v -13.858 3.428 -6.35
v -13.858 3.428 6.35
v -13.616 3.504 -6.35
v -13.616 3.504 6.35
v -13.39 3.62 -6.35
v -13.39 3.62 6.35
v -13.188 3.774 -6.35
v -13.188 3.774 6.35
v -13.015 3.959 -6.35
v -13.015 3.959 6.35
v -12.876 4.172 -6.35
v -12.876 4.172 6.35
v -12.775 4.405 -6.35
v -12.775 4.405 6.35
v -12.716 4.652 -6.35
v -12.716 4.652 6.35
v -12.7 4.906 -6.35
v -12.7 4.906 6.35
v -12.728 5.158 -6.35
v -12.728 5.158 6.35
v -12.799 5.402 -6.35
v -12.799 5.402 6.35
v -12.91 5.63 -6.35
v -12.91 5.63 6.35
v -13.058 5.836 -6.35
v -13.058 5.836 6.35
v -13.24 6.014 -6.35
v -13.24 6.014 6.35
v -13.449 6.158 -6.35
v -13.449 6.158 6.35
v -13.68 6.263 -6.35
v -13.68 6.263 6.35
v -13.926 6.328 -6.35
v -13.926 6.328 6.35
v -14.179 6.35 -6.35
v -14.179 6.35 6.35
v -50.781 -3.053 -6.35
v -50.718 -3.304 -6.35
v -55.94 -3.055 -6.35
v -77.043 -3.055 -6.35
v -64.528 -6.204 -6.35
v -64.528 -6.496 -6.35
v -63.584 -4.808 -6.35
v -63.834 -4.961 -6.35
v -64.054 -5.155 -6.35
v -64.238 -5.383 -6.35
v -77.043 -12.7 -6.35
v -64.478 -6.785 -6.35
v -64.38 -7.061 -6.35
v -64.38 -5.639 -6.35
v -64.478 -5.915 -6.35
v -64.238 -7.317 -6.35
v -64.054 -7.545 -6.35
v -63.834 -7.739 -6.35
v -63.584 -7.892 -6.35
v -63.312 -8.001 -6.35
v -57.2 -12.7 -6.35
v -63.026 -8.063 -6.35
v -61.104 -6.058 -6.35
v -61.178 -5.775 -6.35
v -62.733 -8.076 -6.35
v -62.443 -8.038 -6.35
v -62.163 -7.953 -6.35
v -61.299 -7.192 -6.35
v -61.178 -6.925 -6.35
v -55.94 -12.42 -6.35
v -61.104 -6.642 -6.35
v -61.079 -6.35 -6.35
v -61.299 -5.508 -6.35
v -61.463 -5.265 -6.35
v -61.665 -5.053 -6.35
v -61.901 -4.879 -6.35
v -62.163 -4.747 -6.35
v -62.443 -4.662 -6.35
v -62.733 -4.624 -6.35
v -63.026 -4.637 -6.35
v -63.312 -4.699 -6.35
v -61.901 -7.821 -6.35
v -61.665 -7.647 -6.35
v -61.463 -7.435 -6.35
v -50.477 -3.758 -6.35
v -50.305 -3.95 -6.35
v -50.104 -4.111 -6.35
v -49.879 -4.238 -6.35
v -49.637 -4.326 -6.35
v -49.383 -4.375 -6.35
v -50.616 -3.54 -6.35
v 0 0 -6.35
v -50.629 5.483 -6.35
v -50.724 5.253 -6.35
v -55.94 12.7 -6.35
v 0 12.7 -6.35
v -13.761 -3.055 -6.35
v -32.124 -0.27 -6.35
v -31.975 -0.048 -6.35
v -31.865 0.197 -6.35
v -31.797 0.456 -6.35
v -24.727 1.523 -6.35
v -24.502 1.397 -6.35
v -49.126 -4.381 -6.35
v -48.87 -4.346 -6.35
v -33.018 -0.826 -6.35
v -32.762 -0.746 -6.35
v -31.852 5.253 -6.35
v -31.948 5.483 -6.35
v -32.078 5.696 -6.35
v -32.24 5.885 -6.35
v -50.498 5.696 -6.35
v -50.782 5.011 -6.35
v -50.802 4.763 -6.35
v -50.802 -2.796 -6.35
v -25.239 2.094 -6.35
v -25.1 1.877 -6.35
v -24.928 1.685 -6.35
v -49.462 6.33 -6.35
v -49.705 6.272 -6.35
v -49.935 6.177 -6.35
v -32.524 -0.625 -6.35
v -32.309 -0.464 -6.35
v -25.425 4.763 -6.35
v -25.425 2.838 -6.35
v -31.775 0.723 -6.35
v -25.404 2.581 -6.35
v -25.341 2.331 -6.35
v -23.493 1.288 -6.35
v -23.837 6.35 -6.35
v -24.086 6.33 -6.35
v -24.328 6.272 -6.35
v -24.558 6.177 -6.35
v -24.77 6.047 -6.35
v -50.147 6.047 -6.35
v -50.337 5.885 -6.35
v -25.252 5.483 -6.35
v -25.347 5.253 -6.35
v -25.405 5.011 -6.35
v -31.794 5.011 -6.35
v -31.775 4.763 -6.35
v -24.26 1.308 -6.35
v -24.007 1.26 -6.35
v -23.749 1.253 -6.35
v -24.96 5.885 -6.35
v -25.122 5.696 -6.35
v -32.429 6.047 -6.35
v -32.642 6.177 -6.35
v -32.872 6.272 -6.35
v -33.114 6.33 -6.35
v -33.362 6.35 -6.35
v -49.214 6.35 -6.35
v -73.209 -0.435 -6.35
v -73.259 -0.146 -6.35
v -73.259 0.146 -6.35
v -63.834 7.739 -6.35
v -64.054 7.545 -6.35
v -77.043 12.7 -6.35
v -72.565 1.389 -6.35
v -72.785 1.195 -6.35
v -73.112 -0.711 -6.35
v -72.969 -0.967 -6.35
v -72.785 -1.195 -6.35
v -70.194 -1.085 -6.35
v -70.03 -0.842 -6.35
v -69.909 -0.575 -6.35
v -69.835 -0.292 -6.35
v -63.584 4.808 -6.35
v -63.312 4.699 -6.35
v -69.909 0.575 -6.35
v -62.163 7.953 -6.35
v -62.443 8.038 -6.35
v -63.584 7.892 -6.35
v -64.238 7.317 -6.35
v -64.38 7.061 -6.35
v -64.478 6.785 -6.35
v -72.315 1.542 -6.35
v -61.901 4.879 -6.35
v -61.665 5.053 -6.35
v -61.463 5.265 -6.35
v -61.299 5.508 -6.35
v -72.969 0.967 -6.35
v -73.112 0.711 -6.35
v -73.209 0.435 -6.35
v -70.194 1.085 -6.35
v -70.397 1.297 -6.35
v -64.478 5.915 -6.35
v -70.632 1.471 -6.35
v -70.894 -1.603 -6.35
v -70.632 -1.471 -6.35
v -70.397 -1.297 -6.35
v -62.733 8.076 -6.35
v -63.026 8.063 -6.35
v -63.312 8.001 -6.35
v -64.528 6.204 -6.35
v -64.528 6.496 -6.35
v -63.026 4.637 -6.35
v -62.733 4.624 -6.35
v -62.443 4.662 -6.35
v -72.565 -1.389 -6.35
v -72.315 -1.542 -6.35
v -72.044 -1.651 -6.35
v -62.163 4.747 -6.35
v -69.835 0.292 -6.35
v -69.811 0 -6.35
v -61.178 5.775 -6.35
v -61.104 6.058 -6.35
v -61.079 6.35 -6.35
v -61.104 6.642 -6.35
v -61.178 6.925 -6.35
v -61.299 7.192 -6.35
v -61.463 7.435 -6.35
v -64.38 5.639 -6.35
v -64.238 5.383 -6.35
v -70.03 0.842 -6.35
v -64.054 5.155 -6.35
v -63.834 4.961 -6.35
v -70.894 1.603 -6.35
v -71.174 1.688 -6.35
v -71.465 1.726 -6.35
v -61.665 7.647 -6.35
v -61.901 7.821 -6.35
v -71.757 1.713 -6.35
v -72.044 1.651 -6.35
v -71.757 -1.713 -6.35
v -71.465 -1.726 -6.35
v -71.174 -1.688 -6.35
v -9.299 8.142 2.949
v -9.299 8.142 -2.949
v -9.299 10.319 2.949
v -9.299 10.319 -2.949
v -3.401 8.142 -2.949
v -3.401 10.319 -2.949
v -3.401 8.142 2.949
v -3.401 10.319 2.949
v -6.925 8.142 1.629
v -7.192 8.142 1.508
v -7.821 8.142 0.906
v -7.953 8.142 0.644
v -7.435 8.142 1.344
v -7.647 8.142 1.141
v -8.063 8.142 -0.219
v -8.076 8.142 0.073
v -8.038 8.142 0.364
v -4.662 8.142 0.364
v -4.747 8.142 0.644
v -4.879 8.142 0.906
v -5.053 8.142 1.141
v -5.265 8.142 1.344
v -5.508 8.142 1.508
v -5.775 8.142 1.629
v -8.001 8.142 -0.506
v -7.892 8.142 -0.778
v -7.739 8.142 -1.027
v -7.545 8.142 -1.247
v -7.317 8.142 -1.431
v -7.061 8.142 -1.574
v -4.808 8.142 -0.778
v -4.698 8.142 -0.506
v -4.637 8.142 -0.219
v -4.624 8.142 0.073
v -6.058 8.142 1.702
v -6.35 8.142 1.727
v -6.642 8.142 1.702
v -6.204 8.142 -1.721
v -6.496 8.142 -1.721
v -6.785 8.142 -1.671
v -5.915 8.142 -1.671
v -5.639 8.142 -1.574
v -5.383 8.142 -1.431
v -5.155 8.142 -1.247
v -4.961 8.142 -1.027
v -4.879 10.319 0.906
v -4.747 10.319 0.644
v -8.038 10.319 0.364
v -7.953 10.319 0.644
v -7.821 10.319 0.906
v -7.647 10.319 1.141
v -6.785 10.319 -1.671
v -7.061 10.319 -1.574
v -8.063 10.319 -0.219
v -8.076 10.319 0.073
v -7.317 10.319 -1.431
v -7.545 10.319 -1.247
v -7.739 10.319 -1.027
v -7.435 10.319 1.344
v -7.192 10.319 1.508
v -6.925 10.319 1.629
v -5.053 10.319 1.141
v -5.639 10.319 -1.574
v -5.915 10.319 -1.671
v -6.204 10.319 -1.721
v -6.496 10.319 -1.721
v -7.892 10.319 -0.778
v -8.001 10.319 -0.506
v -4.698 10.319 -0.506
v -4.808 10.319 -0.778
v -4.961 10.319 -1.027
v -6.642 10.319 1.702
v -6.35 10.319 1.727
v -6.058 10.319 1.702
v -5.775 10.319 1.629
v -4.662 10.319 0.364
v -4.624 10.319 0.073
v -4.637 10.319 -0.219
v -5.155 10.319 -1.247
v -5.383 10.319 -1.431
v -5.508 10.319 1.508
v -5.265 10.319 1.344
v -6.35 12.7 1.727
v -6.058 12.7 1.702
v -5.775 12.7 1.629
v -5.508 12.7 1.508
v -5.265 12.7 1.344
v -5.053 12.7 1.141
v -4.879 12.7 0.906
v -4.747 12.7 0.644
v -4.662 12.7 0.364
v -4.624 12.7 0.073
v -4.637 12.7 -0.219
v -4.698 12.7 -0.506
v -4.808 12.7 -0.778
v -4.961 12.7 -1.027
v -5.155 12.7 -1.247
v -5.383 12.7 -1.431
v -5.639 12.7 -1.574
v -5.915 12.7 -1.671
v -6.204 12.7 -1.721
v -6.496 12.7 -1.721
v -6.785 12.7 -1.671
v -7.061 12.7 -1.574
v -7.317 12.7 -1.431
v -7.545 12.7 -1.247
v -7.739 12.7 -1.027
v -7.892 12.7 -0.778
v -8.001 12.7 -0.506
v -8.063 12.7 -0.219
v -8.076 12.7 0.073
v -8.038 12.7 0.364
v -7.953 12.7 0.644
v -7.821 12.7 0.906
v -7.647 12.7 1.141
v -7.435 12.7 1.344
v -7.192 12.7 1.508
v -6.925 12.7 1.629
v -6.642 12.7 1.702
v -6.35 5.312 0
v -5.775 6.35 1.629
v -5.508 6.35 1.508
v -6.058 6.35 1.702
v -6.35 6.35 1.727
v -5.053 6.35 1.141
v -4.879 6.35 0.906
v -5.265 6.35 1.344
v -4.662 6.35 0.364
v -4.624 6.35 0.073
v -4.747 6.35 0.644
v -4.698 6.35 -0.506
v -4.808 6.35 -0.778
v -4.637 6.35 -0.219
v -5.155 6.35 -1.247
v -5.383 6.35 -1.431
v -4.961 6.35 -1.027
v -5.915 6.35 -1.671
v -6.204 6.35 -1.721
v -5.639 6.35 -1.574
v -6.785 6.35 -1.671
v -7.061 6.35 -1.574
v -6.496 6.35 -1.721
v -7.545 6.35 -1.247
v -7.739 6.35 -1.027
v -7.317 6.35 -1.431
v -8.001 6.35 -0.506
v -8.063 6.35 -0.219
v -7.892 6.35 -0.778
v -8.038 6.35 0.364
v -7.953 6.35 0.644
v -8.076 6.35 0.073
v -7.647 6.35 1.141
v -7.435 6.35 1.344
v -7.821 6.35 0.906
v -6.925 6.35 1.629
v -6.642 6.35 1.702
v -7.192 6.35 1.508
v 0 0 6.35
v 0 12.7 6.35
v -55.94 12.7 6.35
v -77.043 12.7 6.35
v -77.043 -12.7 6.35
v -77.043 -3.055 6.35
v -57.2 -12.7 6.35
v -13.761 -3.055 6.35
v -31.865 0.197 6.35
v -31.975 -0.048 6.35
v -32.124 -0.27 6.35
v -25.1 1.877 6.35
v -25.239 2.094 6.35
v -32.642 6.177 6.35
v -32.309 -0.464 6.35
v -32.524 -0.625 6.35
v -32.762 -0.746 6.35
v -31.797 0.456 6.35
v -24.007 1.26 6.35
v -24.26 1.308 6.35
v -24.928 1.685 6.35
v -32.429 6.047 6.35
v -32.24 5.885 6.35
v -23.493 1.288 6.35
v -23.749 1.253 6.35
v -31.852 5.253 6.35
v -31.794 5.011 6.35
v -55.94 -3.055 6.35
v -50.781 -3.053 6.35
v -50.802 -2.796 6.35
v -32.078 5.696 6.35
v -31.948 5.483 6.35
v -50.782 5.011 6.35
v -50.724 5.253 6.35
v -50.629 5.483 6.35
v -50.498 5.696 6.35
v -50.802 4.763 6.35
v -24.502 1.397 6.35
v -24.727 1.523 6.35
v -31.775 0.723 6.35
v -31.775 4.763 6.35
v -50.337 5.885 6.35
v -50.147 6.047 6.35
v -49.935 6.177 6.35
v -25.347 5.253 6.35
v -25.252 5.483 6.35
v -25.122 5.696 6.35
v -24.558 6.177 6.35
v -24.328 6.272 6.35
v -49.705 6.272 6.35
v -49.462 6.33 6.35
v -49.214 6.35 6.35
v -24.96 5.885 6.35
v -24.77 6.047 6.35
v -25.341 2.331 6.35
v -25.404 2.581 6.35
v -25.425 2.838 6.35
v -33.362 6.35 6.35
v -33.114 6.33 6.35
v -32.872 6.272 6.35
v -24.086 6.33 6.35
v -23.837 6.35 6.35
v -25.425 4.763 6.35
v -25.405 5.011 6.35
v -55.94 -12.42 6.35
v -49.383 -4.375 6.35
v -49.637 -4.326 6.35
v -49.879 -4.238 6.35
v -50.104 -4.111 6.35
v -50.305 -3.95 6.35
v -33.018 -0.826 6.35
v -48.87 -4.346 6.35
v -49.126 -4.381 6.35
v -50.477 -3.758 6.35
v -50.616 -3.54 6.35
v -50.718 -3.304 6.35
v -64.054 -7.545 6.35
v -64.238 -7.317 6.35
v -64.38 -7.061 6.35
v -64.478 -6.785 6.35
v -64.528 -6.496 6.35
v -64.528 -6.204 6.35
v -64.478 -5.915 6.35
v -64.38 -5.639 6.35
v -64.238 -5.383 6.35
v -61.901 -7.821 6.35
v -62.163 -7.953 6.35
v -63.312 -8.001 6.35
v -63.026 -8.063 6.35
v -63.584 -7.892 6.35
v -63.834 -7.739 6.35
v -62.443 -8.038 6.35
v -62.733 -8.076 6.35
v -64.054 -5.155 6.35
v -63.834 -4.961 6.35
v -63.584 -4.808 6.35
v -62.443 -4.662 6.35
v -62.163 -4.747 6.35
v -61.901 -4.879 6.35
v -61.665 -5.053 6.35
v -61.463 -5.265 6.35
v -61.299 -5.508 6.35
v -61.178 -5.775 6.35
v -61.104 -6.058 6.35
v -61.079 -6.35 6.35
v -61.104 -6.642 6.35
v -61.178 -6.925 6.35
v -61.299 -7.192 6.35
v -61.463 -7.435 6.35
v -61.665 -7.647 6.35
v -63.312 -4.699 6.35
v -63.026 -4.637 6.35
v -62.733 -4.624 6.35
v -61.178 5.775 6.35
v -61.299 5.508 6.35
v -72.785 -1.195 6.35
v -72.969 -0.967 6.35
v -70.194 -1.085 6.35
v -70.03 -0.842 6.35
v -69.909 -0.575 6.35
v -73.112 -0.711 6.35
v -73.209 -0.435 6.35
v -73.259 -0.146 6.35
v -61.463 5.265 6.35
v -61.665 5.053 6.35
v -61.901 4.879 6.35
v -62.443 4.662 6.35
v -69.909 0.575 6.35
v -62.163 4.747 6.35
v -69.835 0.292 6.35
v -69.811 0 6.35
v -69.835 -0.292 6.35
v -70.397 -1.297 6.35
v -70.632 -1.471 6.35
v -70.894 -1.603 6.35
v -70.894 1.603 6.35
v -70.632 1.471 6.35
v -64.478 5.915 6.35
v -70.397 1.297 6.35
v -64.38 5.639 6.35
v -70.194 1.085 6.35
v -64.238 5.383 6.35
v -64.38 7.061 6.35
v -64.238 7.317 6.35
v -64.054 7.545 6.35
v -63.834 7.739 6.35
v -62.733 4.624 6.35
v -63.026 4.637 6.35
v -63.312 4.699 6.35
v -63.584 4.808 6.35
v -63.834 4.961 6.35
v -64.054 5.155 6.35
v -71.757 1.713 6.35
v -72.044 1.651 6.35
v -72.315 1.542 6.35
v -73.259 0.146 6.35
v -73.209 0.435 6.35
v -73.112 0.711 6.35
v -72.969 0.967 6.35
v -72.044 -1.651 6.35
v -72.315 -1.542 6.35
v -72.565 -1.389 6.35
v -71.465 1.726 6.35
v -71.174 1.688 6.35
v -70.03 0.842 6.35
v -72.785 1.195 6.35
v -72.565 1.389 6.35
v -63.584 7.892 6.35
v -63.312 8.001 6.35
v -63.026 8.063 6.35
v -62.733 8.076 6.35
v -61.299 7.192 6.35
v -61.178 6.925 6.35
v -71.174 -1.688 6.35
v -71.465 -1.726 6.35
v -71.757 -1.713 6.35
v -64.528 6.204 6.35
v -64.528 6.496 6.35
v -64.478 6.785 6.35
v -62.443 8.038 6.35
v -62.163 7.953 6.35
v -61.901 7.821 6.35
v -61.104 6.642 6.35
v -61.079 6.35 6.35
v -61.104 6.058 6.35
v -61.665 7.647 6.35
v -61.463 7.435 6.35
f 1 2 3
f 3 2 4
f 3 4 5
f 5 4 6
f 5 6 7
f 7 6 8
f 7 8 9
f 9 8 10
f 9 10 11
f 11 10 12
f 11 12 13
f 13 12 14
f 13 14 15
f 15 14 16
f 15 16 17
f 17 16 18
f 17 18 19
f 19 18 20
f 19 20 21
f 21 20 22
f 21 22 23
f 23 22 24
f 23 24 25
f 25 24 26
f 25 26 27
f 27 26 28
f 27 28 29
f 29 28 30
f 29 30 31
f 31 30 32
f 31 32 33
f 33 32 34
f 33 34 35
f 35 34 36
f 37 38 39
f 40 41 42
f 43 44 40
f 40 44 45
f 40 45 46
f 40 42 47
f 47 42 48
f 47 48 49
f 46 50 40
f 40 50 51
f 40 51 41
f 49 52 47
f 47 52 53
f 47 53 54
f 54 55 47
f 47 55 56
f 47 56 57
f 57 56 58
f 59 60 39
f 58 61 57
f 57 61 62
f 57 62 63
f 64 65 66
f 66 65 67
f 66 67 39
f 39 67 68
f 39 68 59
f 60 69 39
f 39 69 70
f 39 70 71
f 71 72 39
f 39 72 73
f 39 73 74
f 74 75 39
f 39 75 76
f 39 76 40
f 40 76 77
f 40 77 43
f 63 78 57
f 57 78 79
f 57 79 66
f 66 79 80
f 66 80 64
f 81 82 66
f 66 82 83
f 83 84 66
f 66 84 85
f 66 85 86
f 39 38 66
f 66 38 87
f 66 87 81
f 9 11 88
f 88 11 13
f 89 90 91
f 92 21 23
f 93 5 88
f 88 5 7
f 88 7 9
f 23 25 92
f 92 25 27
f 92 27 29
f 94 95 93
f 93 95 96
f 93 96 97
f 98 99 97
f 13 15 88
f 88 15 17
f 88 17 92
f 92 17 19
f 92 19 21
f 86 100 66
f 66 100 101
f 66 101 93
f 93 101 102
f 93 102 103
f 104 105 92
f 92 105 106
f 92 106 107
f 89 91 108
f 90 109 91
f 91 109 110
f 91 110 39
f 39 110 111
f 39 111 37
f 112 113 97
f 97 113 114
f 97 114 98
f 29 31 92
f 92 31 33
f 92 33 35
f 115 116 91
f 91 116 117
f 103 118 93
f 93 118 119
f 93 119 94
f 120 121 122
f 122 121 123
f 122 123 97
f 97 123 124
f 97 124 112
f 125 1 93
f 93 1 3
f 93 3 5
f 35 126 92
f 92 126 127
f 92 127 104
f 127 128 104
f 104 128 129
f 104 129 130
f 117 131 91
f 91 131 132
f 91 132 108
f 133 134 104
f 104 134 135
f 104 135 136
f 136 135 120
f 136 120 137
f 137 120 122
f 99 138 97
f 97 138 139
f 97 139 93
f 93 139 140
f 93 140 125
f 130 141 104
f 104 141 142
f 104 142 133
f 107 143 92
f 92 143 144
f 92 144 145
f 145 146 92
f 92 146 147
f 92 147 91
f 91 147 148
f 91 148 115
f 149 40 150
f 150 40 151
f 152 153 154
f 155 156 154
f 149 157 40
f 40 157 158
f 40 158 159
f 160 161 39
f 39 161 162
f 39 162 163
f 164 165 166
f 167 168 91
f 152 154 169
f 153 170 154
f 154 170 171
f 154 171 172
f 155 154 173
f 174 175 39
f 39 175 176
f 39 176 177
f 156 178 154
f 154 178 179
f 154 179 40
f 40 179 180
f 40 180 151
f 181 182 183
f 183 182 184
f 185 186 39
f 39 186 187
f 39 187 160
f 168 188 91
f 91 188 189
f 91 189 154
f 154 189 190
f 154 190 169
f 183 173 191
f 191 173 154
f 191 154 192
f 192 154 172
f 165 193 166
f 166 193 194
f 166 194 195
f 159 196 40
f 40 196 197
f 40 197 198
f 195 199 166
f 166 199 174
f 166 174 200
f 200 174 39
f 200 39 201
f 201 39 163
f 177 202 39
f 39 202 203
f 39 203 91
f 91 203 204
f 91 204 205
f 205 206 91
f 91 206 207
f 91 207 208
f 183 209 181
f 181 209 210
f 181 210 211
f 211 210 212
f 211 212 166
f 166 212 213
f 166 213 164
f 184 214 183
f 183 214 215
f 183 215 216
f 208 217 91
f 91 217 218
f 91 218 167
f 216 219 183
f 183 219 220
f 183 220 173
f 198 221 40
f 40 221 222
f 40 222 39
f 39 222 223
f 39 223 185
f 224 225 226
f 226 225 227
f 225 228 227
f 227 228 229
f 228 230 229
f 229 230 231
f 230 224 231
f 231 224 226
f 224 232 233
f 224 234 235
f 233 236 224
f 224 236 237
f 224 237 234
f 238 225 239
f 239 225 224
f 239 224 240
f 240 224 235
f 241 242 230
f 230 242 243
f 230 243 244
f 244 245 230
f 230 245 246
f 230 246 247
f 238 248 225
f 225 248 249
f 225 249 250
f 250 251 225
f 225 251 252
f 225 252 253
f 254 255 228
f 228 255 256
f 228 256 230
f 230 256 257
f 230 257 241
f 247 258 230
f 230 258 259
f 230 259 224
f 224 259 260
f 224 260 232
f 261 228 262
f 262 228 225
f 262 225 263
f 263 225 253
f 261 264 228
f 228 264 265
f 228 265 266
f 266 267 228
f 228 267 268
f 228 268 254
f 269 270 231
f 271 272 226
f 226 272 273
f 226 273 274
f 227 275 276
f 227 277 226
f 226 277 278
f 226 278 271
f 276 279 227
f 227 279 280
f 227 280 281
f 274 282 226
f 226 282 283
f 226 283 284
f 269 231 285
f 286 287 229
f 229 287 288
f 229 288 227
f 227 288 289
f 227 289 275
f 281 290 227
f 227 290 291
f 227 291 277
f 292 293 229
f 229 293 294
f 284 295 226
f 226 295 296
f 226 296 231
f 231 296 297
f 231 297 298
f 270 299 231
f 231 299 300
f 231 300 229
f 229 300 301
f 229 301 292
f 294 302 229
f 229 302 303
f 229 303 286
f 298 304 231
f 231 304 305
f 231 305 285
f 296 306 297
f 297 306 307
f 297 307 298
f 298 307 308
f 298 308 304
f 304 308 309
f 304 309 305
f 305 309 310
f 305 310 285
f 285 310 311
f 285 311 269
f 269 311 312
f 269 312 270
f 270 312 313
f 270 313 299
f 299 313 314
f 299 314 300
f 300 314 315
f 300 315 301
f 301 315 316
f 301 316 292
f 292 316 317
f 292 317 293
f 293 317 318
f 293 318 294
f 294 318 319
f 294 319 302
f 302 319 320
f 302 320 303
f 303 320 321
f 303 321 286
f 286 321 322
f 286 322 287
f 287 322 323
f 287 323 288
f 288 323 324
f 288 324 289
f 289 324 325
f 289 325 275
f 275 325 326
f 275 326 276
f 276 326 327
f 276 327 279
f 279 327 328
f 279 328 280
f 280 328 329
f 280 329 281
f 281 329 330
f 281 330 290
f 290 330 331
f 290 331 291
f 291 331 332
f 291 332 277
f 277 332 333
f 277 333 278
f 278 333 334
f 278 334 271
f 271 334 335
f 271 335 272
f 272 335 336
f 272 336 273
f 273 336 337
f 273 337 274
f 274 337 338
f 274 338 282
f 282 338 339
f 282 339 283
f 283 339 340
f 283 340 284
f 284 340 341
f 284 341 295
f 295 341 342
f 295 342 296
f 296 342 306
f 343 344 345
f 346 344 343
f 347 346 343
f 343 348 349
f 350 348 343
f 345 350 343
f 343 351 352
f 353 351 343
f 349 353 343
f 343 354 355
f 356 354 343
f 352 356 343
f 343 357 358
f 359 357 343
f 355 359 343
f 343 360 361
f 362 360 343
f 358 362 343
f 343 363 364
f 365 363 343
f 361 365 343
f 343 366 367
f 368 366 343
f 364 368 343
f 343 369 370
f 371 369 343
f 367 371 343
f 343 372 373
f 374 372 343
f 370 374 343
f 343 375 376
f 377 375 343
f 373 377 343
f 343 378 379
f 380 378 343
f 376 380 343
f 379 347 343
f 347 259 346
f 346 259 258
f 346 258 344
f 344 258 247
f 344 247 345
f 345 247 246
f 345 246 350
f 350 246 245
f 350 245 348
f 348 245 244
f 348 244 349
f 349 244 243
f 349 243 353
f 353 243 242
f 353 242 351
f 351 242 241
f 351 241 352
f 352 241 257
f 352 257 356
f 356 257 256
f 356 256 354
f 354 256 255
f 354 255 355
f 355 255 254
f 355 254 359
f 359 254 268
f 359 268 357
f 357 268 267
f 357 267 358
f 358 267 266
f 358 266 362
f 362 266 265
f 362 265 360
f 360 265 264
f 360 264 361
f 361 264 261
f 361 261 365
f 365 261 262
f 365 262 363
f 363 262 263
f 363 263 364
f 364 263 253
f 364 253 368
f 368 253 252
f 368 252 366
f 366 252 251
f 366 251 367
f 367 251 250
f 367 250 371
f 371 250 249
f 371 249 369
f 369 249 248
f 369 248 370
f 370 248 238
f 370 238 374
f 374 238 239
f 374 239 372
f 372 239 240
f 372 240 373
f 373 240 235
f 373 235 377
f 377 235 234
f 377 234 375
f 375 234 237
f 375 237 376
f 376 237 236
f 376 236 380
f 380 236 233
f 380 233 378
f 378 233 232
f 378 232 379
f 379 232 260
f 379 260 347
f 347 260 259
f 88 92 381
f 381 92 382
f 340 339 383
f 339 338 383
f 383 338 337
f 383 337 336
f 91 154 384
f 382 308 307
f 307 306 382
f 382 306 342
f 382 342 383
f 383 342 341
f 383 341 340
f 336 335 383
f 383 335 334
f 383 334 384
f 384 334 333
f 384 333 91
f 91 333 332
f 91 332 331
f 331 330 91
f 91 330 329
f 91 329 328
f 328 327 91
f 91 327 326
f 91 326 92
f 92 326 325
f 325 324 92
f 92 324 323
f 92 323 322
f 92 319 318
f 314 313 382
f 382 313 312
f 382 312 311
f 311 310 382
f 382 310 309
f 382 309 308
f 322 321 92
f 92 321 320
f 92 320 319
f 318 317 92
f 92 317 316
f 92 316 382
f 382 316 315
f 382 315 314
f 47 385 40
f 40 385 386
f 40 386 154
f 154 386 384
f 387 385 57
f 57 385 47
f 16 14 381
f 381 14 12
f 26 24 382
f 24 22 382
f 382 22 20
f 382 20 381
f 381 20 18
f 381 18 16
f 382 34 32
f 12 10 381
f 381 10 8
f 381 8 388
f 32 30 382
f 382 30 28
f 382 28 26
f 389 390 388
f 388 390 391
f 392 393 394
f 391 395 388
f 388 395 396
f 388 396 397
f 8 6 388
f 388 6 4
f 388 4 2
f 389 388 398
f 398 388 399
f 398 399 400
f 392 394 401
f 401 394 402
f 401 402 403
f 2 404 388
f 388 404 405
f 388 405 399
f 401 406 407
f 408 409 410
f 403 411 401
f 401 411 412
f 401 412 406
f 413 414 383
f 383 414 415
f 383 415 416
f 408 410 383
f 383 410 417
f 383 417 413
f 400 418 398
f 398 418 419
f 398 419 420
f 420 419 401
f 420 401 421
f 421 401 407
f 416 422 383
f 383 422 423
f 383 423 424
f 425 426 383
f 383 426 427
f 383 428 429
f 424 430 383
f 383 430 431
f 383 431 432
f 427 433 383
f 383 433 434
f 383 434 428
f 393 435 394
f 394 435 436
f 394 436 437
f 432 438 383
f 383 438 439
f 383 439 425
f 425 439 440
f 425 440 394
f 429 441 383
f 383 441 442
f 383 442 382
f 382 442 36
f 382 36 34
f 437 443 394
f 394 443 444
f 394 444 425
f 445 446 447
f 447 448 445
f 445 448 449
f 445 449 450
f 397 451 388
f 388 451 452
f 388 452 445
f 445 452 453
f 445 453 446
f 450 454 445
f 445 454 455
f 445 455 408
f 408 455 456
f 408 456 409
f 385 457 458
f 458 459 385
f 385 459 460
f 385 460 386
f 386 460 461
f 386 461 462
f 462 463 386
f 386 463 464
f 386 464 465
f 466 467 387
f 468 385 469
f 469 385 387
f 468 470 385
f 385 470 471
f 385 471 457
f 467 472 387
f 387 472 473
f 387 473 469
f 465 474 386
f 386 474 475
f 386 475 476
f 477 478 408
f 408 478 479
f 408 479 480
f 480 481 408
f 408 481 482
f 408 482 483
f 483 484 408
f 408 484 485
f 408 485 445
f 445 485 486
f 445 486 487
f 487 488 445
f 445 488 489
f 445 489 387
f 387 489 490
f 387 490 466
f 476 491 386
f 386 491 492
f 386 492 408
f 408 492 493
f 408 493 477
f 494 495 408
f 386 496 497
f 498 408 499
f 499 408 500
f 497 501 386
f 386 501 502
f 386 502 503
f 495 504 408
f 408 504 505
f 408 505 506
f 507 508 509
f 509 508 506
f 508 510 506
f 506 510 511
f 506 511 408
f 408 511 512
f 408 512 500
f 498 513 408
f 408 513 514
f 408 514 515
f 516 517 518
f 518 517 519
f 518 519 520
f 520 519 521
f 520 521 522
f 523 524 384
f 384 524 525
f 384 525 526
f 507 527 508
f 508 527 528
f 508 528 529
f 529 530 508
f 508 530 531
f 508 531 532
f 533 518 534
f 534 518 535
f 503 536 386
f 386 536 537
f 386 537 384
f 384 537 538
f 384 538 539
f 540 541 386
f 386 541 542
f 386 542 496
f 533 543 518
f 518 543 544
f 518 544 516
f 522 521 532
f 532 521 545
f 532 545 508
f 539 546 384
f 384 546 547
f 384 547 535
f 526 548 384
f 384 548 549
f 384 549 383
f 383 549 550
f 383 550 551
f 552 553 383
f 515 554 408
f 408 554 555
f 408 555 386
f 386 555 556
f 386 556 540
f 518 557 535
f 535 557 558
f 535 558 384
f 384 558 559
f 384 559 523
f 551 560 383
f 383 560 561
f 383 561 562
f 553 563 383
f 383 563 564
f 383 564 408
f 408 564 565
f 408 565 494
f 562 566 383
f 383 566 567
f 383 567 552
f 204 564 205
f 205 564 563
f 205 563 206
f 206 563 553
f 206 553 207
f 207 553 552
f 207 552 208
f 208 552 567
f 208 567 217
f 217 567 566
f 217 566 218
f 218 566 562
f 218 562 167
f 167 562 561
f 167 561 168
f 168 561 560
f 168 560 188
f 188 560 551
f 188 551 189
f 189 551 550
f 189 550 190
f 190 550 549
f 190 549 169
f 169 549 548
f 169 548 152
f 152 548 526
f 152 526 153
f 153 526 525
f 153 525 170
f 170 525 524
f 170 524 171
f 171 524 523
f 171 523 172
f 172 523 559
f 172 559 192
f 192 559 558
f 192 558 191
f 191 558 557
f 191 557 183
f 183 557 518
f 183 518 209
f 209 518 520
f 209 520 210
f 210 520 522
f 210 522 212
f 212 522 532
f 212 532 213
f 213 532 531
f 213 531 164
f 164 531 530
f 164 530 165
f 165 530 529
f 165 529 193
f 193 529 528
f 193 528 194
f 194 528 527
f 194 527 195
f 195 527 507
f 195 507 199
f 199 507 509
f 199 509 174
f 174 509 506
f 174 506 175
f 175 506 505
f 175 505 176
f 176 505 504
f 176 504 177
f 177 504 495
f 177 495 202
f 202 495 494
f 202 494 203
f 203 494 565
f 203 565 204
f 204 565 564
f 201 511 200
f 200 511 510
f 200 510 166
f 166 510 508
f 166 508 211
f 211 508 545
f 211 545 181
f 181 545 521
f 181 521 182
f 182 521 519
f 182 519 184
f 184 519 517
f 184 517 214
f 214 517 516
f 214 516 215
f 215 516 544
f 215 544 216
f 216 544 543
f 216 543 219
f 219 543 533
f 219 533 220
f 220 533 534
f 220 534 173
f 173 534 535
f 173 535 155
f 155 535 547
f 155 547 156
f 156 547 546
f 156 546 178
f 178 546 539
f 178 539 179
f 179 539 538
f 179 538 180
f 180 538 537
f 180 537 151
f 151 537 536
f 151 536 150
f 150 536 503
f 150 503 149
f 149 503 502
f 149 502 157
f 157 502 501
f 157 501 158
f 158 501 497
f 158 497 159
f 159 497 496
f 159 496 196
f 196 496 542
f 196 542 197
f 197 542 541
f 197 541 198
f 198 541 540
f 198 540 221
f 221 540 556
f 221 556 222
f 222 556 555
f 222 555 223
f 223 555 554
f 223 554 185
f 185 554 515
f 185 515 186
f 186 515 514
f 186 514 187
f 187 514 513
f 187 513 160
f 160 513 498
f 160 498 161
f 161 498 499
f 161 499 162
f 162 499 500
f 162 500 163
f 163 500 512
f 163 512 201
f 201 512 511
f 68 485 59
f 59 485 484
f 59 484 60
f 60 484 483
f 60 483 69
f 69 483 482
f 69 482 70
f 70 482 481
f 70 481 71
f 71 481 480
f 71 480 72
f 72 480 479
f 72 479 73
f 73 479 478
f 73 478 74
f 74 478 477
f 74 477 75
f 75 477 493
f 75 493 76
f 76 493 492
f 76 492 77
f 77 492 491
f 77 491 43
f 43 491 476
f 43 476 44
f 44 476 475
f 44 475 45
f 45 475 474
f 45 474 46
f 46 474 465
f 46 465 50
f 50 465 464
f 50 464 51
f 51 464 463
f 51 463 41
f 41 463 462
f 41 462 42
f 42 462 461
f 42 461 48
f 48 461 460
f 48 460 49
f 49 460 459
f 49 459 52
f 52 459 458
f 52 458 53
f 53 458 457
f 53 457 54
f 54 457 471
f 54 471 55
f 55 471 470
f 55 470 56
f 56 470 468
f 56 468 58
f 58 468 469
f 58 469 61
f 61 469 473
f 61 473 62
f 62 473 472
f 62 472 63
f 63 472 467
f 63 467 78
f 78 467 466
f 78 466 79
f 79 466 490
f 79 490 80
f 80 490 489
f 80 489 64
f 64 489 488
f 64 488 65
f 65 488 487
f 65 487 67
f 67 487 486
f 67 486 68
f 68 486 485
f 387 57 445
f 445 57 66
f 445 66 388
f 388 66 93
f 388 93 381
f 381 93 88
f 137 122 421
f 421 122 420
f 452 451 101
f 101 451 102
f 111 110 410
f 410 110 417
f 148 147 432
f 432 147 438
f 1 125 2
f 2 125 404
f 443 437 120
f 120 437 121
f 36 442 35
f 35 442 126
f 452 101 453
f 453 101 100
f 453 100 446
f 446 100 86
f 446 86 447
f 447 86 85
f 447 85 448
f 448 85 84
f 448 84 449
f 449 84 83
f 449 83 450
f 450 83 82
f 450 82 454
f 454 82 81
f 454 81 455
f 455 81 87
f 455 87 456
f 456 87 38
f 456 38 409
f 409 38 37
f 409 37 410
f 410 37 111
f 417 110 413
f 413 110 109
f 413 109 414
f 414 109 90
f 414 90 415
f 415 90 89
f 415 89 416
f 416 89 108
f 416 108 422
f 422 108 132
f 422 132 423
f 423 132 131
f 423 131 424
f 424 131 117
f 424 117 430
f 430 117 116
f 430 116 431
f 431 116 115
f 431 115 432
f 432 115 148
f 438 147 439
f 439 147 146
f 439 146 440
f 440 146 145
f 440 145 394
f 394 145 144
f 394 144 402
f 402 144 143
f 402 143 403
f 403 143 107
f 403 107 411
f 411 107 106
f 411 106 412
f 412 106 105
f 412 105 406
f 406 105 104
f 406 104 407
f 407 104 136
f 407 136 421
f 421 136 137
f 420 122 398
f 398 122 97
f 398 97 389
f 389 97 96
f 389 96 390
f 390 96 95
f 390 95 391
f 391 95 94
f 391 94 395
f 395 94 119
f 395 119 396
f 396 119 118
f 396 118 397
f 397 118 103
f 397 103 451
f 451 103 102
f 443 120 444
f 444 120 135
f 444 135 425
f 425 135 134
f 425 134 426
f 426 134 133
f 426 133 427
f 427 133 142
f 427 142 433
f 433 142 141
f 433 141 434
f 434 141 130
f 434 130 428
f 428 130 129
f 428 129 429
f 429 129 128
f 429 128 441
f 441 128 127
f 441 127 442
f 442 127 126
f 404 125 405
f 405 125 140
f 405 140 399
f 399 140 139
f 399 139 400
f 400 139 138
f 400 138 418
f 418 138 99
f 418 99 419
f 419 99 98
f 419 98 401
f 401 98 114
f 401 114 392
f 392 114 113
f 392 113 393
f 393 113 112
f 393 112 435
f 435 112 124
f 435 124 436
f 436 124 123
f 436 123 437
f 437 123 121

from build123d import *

# Parameters (mm, degrees)
SKETCH1_W                 = 77.04328
SKETCH1_H                 = 25.4
BOSS_EXTRUDE1_DEPTH       = 6.35
CUT_EXTRUDE1_START        = -2.38125
SKETCH2_W                 = 5.8975
SKETCH2_H                 = 5.8975
CUT_EXTRUDE1_DEPTH        = 2.1764
F_4_CLEARANCE_HOLE1_D     = 3.4544
F_4_CLEARANCE_HOLE1_DEPTH = 6.35
F_4_CLEARANCE_HOLE1_TIP   = 1.037806461
F_4_CLEARANCE_HOLE2_D     = 3.4544
CUT_EXTRUDE2_DEPTH        = 80.109082874
CUT_EXTRUDE3_DEPTH        = 80.109082874
FILLET1_R                 = 1.5875
FILLET2_R                 = 1.478727


with BuildPart() as part:
    # Sketch1 → Boss-Extrude1 (new, symmetric)
    with BuildSketch(Plane.XY):
        with Locations((-38.52164, 0)):
            Rectangle(SKETCH1_W, SKETCH1_H)
    extrude(amount=BOSS_EXTRUDE1_DEPTH, both=True)

    # Sketch2 → Cut-Extrude1 (cut)
    with BuildSketch(Plane(origin=(0, 12.7, 0), x_dir=(1, 0, 0), z_dir=(0, 1, 0)).offset(CUT_EXTRUDE1_START)):
        with Locations((-6.350000199, 1.99e-07)):
            Rectangle(SKETCH2_W, SKETCH2_H)
    extrude(amount=-CUT_EXTRUDE1_DEPTH, mode=Mode.SUBTRACT)

    # #4 Clearance Hole1
    with Locations(Plane(origin=(0, 12.7, 0), x_dir=(1, 0, 0), z_dir=(0, 1, 0))):
        with Locations((-6.350000199, 1.99e-07)):
            Hole(F_4_CLEARANCE_HOLE1_D / 2, depth=F_4_CLEARANCE_HOLE1_DEPTH)
            with Locations((0, 0, -(F_4_CLEARANCE_HOLE1_DEPTH + F_4_CLEARANCE_HOLE1_TIP / 2))):  # 118° drill point
                Cone(0, F_4_CLEARANCE_HOLE1_D / 2, F_4_CLEARANCE_HOLE1_TIP, mode=Mode.SUBTRACT)

    # #4 Clearance Hole2 (through all)
    with Locations(Plane.XY.offset(6.35)):
        with Locations((-62.80658, -6.35), (-71.53783, 0), (-62.80658, 6.35)):
            Hole(F_4_CLEARANCE_HOLE2_D / 2)

    # Sketch8 → Cut-Extrude2 (cut, through all)
    with BuildSketch(Plane(origin=(0, 0, -6.35), x_dir=(-1, 0, 0), z_dir=(0, 0, -1))):
        Polygon((0, 0), (0, -12.7), (57.19953, -12.7), align=None)
    extrude(amount=-CUT_EXTRUDE2_DEPTH, mode=Mode.SUBTRACT)

    # Sketch9 → Cut-Extrude3 (cut, through all)
    with BuildSketch(Plane.XY.offset(6.35)):
        Polygon((-12.7, 3.684857438), (-25.424765, 0.859580456), (-25.424765, 6.35), (-12.7, 6.35), align=None)
        Polygon((-31.774765, -0.550308751), (-50.801588921, -4.774830592), (-50.801588921, 6.35), (-31.774765, 6.35), align=None)
    extrude(amount=-CUT_EXTRUDE3_DEPTH, mode=Mode.SUBTRACT)

    # Fillet1
    fillet1_edges = [part.edges().sort_by_distance(p)[0] for p in [
        (-25.424765, 0.859580456, 0),
        (-25.424765, 6.35, 0),
        (-31.774765, 6.35, 0),
        (-31.774765, -0.550308751, 0),
        (-50.801588921, -4.774830592, 0),
        (-50.801588921, 6.35, 0),
    ]]
    fillet(fillet1_edges, radius=FILLET1_R)

    # Fillet2
    fillet2_edges = [part.edges().sort_by_distance(p)[0] for p in [
        (-12.7, 6.35, 0),
        (-12.7, 3.684857438, 0),
    ]]
    fillet(fillet2_edges, radius=FILLET2_R - 0.0001)  # a hair under: the kernel refuses the full size


solid = part.part
